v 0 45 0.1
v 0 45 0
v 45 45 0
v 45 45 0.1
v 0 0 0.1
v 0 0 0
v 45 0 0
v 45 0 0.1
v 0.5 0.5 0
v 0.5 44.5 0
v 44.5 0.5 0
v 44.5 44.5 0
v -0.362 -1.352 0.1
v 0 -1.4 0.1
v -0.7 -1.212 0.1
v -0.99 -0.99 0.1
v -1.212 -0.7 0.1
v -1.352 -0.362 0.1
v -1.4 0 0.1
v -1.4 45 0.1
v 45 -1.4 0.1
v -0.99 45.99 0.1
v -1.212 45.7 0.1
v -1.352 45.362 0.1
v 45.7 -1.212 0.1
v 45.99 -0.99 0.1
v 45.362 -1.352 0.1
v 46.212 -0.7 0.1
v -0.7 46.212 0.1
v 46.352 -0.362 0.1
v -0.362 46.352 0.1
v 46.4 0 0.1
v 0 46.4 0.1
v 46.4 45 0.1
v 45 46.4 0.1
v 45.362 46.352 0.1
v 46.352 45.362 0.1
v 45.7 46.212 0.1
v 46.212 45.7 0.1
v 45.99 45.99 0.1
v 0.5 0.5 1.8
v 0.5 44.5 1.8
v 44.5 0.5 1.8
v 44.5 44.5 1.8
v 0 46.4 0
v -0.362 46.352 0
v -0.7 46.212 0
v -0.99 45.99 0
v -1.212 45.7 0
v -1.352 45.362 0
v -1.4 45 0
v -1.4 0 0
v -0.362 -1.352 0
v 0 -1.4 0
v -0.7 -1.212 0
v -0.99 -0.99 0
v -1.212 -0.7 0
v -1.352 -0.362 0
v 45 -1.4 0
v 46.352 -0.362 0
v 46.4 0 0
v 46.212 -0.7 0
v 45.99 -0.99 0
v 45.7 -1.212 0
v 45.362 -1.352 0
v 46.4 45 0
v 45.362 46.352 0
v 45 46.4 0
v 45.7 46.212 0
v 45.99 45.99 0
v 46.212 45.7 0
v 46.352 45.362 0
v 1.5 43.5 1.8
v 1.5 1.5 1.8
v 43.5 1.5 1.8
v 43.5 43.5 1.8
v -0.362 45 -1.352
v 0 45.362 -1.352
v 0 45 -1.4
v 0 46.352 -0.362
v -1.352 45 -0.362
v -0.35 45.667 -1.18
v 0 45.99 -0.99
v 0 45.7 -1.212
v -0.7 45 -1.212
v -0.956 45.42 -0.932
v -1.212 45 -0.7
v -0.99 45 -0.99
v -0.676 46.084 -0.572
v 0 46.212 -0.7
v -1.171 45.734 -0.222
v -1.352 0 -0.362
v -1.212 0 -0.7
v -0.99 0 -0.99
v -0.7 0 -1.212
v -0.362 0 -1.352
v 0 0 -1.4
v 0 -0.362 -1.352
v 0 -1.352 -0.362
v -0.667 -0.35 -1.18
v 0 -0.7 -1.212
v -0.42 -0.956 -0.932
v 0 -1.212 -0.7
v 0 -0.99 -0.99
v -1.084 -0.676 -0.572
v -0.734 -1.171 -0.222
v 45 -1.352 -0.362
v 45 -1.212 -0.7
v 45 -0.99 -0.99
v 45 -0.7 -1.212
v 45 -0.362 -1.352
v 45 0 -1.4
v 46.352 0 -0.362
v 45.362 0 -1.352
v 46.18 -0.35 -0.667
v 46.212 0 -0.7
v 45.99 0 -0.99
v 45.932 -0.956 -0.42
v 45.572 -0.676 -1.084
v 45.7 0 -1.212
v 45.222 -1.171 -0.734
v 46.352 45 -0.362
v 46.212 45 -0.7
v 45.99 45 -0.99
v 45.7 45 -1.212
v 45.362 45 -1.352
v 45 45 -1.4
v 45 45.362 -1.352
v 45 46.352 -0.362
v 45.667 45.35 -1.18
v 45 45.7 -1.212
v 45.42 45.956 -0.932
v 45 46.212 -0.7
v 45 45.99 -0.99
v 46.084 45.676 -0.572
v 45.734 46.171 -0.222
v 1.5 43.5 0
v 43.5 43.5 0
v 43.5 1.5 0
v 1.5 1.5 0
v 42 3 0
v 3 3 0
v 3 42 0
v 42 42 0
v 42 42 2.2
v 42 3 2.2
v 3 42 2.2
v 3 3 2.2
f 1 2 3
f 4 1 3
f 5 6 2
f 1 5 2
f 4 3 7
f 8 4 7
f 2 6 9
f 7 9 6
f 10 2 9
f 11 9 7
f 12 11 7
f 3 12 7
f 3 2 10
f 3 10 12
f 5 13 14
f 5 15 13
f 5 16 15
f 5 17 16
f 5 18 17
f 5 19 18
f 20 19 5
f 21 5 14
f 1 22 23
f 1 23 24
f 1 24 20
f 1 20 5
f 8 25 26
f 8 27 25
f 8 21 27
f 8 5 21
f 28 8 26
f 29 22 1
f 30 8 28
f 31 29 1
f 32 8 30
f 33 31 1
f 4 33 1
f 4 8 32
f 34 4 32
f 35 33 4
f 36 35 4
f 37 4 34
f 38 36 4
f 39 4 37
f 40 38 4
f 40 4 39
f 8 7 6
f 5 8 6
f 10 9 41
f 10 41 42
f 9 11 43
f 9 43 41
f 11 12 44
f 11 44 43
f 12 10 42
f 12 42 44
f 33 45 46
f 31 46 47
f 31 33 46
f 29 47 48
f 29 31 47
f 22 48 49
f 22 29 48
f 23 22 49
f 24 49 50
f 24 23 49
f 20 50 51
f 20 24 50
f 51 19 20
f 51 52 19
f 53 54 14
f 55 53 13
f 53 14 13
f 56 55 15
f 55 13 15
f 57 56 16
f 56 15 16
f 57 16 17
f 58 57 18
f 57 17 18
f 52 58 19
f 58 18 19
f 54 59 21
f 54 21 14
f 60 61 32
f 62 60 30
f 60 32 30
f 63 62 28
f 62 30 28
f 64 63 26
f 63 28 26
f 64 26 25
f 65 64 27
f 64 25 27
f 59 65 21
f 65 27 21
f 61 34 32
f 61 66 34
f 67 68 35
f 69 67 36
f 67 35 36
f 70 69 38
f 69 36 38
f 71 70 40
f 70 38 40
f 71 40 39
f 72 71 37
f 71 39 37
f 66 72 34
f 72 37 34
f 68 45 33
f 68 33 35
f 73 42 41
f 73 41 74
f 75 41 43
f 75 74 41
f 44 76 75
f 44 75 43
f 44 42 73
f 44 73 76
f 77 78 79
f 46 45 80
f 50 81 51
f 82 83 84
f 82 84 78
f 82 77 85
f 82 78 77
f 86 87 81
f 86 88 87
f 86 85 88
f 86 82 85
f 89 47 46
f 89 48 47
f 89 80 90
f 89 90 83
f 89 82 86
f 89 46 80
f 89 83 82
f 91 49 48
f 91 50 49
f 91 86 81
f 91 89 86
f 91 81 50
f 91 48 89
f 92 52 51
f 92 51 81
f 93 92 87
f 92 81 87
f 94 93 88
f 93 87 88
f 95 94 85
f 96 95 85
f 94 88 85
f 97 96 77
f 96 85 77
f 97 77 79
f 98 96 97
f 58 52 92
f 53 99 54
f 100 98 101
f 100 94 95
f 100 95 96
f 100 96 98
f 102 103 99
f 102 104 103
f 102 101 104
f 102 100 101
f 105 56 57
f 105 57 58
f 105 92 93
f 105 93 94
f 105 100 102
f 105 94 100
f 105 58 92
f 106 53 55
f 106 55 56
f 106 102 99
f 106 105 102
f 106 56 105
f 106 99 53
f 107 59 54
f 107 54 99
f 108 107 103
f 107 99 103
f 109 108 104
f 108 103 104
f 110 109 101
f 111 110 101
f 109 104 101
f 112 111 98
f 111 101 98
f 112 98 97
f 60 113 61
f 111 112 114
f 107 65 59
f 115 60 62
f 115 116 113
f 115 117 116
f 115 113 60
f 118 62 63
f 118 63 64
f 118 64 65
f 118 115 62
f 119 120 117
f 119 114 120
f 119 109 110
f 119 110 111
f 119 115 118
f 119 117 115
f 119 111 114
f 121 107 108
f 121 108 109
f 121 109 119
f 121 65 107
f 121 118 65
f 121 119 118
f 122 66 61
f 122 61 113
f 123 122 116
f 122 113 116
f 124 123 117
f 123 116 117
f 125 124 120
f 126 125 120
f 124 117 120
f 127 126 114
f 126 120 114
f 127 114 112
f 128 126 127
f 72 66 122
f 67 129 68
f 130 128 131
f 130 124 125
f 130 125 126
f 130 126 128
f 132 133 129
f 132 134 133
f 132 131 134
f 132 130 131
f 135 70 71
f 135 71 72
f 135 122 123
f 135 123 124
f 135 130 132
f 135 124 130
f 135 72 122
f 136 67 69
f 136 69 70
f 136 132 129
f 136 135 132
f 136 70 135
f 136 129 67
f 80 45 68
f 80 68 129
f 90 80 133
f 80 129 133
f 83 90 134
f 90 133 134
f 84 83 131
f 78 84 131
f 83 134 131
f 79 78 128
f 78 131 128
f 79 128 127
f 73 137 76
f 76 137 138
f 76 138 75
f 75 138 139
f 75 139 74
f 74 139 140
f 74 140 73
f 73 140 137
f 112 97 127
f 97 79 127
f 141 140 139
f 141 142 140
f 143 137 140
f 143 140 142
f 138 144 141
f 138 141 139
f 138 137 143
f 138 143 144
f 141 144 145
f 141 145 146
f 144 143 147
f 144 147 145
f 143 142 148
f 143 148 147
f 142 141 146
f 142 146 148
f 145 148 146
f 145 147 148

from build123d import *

# Parameters (mm, degrees)
SKETCH_W      = 45
SKETCH_H      = 45
PAD_DEPTH     = 0.1
THICKNESS_T   = 1.4
SKETCH001_W   = 44
SKETCH001_H   = 44
SKETCH001_W_2 = 42
SKETCH001_H_2 = 42
PAD001_DEPTH  = 1.8
SKETCH002_W   = 39
SKETCH002_H   = 39
PAD002_DEPTH  = 2.2


with BuildPart() as part:
    # Sketch → Pad (new body)
    with BuildSketch(Plane.XY):
        with Locations((22.5, 22.5)):
            Rectangle(SKETCH_W, SKETCH_H)
    extrude(amount=PAD_DEPTH)

    # Thickness
    thickness_openings = [part.faces().sort_by_distance(p)[0] for p in [
        (22.5, 22.5, 0.1),
    ]]
    offset(amount=THICKNESS_T, openings=thickness_openings)

    # Sketch001 → Pad001 (new body)
    with BuildSketch(Plane.XY):
        with Locations((22.5, 22.5)):
            Rectangle(SKETCH001_W, SKETCH001_H)
        with Locations((22.5, 22.5)):
            Rectangle(SKETCH001_W_2, SKETCH001_H_2, mode=Mode.SUBTRACT)
    extrude(amount=PAD001_DEPTH)

    # Sketch002 → Pad002 (new body)
    with BuildSketch(Plane.XY):
        with Locations((22.5, 22.5)):
            Rectangle(SKETCH002_W, SKETCH002_H)
    extrude(amount=PAD002_DEPTH)


solid = part.part
